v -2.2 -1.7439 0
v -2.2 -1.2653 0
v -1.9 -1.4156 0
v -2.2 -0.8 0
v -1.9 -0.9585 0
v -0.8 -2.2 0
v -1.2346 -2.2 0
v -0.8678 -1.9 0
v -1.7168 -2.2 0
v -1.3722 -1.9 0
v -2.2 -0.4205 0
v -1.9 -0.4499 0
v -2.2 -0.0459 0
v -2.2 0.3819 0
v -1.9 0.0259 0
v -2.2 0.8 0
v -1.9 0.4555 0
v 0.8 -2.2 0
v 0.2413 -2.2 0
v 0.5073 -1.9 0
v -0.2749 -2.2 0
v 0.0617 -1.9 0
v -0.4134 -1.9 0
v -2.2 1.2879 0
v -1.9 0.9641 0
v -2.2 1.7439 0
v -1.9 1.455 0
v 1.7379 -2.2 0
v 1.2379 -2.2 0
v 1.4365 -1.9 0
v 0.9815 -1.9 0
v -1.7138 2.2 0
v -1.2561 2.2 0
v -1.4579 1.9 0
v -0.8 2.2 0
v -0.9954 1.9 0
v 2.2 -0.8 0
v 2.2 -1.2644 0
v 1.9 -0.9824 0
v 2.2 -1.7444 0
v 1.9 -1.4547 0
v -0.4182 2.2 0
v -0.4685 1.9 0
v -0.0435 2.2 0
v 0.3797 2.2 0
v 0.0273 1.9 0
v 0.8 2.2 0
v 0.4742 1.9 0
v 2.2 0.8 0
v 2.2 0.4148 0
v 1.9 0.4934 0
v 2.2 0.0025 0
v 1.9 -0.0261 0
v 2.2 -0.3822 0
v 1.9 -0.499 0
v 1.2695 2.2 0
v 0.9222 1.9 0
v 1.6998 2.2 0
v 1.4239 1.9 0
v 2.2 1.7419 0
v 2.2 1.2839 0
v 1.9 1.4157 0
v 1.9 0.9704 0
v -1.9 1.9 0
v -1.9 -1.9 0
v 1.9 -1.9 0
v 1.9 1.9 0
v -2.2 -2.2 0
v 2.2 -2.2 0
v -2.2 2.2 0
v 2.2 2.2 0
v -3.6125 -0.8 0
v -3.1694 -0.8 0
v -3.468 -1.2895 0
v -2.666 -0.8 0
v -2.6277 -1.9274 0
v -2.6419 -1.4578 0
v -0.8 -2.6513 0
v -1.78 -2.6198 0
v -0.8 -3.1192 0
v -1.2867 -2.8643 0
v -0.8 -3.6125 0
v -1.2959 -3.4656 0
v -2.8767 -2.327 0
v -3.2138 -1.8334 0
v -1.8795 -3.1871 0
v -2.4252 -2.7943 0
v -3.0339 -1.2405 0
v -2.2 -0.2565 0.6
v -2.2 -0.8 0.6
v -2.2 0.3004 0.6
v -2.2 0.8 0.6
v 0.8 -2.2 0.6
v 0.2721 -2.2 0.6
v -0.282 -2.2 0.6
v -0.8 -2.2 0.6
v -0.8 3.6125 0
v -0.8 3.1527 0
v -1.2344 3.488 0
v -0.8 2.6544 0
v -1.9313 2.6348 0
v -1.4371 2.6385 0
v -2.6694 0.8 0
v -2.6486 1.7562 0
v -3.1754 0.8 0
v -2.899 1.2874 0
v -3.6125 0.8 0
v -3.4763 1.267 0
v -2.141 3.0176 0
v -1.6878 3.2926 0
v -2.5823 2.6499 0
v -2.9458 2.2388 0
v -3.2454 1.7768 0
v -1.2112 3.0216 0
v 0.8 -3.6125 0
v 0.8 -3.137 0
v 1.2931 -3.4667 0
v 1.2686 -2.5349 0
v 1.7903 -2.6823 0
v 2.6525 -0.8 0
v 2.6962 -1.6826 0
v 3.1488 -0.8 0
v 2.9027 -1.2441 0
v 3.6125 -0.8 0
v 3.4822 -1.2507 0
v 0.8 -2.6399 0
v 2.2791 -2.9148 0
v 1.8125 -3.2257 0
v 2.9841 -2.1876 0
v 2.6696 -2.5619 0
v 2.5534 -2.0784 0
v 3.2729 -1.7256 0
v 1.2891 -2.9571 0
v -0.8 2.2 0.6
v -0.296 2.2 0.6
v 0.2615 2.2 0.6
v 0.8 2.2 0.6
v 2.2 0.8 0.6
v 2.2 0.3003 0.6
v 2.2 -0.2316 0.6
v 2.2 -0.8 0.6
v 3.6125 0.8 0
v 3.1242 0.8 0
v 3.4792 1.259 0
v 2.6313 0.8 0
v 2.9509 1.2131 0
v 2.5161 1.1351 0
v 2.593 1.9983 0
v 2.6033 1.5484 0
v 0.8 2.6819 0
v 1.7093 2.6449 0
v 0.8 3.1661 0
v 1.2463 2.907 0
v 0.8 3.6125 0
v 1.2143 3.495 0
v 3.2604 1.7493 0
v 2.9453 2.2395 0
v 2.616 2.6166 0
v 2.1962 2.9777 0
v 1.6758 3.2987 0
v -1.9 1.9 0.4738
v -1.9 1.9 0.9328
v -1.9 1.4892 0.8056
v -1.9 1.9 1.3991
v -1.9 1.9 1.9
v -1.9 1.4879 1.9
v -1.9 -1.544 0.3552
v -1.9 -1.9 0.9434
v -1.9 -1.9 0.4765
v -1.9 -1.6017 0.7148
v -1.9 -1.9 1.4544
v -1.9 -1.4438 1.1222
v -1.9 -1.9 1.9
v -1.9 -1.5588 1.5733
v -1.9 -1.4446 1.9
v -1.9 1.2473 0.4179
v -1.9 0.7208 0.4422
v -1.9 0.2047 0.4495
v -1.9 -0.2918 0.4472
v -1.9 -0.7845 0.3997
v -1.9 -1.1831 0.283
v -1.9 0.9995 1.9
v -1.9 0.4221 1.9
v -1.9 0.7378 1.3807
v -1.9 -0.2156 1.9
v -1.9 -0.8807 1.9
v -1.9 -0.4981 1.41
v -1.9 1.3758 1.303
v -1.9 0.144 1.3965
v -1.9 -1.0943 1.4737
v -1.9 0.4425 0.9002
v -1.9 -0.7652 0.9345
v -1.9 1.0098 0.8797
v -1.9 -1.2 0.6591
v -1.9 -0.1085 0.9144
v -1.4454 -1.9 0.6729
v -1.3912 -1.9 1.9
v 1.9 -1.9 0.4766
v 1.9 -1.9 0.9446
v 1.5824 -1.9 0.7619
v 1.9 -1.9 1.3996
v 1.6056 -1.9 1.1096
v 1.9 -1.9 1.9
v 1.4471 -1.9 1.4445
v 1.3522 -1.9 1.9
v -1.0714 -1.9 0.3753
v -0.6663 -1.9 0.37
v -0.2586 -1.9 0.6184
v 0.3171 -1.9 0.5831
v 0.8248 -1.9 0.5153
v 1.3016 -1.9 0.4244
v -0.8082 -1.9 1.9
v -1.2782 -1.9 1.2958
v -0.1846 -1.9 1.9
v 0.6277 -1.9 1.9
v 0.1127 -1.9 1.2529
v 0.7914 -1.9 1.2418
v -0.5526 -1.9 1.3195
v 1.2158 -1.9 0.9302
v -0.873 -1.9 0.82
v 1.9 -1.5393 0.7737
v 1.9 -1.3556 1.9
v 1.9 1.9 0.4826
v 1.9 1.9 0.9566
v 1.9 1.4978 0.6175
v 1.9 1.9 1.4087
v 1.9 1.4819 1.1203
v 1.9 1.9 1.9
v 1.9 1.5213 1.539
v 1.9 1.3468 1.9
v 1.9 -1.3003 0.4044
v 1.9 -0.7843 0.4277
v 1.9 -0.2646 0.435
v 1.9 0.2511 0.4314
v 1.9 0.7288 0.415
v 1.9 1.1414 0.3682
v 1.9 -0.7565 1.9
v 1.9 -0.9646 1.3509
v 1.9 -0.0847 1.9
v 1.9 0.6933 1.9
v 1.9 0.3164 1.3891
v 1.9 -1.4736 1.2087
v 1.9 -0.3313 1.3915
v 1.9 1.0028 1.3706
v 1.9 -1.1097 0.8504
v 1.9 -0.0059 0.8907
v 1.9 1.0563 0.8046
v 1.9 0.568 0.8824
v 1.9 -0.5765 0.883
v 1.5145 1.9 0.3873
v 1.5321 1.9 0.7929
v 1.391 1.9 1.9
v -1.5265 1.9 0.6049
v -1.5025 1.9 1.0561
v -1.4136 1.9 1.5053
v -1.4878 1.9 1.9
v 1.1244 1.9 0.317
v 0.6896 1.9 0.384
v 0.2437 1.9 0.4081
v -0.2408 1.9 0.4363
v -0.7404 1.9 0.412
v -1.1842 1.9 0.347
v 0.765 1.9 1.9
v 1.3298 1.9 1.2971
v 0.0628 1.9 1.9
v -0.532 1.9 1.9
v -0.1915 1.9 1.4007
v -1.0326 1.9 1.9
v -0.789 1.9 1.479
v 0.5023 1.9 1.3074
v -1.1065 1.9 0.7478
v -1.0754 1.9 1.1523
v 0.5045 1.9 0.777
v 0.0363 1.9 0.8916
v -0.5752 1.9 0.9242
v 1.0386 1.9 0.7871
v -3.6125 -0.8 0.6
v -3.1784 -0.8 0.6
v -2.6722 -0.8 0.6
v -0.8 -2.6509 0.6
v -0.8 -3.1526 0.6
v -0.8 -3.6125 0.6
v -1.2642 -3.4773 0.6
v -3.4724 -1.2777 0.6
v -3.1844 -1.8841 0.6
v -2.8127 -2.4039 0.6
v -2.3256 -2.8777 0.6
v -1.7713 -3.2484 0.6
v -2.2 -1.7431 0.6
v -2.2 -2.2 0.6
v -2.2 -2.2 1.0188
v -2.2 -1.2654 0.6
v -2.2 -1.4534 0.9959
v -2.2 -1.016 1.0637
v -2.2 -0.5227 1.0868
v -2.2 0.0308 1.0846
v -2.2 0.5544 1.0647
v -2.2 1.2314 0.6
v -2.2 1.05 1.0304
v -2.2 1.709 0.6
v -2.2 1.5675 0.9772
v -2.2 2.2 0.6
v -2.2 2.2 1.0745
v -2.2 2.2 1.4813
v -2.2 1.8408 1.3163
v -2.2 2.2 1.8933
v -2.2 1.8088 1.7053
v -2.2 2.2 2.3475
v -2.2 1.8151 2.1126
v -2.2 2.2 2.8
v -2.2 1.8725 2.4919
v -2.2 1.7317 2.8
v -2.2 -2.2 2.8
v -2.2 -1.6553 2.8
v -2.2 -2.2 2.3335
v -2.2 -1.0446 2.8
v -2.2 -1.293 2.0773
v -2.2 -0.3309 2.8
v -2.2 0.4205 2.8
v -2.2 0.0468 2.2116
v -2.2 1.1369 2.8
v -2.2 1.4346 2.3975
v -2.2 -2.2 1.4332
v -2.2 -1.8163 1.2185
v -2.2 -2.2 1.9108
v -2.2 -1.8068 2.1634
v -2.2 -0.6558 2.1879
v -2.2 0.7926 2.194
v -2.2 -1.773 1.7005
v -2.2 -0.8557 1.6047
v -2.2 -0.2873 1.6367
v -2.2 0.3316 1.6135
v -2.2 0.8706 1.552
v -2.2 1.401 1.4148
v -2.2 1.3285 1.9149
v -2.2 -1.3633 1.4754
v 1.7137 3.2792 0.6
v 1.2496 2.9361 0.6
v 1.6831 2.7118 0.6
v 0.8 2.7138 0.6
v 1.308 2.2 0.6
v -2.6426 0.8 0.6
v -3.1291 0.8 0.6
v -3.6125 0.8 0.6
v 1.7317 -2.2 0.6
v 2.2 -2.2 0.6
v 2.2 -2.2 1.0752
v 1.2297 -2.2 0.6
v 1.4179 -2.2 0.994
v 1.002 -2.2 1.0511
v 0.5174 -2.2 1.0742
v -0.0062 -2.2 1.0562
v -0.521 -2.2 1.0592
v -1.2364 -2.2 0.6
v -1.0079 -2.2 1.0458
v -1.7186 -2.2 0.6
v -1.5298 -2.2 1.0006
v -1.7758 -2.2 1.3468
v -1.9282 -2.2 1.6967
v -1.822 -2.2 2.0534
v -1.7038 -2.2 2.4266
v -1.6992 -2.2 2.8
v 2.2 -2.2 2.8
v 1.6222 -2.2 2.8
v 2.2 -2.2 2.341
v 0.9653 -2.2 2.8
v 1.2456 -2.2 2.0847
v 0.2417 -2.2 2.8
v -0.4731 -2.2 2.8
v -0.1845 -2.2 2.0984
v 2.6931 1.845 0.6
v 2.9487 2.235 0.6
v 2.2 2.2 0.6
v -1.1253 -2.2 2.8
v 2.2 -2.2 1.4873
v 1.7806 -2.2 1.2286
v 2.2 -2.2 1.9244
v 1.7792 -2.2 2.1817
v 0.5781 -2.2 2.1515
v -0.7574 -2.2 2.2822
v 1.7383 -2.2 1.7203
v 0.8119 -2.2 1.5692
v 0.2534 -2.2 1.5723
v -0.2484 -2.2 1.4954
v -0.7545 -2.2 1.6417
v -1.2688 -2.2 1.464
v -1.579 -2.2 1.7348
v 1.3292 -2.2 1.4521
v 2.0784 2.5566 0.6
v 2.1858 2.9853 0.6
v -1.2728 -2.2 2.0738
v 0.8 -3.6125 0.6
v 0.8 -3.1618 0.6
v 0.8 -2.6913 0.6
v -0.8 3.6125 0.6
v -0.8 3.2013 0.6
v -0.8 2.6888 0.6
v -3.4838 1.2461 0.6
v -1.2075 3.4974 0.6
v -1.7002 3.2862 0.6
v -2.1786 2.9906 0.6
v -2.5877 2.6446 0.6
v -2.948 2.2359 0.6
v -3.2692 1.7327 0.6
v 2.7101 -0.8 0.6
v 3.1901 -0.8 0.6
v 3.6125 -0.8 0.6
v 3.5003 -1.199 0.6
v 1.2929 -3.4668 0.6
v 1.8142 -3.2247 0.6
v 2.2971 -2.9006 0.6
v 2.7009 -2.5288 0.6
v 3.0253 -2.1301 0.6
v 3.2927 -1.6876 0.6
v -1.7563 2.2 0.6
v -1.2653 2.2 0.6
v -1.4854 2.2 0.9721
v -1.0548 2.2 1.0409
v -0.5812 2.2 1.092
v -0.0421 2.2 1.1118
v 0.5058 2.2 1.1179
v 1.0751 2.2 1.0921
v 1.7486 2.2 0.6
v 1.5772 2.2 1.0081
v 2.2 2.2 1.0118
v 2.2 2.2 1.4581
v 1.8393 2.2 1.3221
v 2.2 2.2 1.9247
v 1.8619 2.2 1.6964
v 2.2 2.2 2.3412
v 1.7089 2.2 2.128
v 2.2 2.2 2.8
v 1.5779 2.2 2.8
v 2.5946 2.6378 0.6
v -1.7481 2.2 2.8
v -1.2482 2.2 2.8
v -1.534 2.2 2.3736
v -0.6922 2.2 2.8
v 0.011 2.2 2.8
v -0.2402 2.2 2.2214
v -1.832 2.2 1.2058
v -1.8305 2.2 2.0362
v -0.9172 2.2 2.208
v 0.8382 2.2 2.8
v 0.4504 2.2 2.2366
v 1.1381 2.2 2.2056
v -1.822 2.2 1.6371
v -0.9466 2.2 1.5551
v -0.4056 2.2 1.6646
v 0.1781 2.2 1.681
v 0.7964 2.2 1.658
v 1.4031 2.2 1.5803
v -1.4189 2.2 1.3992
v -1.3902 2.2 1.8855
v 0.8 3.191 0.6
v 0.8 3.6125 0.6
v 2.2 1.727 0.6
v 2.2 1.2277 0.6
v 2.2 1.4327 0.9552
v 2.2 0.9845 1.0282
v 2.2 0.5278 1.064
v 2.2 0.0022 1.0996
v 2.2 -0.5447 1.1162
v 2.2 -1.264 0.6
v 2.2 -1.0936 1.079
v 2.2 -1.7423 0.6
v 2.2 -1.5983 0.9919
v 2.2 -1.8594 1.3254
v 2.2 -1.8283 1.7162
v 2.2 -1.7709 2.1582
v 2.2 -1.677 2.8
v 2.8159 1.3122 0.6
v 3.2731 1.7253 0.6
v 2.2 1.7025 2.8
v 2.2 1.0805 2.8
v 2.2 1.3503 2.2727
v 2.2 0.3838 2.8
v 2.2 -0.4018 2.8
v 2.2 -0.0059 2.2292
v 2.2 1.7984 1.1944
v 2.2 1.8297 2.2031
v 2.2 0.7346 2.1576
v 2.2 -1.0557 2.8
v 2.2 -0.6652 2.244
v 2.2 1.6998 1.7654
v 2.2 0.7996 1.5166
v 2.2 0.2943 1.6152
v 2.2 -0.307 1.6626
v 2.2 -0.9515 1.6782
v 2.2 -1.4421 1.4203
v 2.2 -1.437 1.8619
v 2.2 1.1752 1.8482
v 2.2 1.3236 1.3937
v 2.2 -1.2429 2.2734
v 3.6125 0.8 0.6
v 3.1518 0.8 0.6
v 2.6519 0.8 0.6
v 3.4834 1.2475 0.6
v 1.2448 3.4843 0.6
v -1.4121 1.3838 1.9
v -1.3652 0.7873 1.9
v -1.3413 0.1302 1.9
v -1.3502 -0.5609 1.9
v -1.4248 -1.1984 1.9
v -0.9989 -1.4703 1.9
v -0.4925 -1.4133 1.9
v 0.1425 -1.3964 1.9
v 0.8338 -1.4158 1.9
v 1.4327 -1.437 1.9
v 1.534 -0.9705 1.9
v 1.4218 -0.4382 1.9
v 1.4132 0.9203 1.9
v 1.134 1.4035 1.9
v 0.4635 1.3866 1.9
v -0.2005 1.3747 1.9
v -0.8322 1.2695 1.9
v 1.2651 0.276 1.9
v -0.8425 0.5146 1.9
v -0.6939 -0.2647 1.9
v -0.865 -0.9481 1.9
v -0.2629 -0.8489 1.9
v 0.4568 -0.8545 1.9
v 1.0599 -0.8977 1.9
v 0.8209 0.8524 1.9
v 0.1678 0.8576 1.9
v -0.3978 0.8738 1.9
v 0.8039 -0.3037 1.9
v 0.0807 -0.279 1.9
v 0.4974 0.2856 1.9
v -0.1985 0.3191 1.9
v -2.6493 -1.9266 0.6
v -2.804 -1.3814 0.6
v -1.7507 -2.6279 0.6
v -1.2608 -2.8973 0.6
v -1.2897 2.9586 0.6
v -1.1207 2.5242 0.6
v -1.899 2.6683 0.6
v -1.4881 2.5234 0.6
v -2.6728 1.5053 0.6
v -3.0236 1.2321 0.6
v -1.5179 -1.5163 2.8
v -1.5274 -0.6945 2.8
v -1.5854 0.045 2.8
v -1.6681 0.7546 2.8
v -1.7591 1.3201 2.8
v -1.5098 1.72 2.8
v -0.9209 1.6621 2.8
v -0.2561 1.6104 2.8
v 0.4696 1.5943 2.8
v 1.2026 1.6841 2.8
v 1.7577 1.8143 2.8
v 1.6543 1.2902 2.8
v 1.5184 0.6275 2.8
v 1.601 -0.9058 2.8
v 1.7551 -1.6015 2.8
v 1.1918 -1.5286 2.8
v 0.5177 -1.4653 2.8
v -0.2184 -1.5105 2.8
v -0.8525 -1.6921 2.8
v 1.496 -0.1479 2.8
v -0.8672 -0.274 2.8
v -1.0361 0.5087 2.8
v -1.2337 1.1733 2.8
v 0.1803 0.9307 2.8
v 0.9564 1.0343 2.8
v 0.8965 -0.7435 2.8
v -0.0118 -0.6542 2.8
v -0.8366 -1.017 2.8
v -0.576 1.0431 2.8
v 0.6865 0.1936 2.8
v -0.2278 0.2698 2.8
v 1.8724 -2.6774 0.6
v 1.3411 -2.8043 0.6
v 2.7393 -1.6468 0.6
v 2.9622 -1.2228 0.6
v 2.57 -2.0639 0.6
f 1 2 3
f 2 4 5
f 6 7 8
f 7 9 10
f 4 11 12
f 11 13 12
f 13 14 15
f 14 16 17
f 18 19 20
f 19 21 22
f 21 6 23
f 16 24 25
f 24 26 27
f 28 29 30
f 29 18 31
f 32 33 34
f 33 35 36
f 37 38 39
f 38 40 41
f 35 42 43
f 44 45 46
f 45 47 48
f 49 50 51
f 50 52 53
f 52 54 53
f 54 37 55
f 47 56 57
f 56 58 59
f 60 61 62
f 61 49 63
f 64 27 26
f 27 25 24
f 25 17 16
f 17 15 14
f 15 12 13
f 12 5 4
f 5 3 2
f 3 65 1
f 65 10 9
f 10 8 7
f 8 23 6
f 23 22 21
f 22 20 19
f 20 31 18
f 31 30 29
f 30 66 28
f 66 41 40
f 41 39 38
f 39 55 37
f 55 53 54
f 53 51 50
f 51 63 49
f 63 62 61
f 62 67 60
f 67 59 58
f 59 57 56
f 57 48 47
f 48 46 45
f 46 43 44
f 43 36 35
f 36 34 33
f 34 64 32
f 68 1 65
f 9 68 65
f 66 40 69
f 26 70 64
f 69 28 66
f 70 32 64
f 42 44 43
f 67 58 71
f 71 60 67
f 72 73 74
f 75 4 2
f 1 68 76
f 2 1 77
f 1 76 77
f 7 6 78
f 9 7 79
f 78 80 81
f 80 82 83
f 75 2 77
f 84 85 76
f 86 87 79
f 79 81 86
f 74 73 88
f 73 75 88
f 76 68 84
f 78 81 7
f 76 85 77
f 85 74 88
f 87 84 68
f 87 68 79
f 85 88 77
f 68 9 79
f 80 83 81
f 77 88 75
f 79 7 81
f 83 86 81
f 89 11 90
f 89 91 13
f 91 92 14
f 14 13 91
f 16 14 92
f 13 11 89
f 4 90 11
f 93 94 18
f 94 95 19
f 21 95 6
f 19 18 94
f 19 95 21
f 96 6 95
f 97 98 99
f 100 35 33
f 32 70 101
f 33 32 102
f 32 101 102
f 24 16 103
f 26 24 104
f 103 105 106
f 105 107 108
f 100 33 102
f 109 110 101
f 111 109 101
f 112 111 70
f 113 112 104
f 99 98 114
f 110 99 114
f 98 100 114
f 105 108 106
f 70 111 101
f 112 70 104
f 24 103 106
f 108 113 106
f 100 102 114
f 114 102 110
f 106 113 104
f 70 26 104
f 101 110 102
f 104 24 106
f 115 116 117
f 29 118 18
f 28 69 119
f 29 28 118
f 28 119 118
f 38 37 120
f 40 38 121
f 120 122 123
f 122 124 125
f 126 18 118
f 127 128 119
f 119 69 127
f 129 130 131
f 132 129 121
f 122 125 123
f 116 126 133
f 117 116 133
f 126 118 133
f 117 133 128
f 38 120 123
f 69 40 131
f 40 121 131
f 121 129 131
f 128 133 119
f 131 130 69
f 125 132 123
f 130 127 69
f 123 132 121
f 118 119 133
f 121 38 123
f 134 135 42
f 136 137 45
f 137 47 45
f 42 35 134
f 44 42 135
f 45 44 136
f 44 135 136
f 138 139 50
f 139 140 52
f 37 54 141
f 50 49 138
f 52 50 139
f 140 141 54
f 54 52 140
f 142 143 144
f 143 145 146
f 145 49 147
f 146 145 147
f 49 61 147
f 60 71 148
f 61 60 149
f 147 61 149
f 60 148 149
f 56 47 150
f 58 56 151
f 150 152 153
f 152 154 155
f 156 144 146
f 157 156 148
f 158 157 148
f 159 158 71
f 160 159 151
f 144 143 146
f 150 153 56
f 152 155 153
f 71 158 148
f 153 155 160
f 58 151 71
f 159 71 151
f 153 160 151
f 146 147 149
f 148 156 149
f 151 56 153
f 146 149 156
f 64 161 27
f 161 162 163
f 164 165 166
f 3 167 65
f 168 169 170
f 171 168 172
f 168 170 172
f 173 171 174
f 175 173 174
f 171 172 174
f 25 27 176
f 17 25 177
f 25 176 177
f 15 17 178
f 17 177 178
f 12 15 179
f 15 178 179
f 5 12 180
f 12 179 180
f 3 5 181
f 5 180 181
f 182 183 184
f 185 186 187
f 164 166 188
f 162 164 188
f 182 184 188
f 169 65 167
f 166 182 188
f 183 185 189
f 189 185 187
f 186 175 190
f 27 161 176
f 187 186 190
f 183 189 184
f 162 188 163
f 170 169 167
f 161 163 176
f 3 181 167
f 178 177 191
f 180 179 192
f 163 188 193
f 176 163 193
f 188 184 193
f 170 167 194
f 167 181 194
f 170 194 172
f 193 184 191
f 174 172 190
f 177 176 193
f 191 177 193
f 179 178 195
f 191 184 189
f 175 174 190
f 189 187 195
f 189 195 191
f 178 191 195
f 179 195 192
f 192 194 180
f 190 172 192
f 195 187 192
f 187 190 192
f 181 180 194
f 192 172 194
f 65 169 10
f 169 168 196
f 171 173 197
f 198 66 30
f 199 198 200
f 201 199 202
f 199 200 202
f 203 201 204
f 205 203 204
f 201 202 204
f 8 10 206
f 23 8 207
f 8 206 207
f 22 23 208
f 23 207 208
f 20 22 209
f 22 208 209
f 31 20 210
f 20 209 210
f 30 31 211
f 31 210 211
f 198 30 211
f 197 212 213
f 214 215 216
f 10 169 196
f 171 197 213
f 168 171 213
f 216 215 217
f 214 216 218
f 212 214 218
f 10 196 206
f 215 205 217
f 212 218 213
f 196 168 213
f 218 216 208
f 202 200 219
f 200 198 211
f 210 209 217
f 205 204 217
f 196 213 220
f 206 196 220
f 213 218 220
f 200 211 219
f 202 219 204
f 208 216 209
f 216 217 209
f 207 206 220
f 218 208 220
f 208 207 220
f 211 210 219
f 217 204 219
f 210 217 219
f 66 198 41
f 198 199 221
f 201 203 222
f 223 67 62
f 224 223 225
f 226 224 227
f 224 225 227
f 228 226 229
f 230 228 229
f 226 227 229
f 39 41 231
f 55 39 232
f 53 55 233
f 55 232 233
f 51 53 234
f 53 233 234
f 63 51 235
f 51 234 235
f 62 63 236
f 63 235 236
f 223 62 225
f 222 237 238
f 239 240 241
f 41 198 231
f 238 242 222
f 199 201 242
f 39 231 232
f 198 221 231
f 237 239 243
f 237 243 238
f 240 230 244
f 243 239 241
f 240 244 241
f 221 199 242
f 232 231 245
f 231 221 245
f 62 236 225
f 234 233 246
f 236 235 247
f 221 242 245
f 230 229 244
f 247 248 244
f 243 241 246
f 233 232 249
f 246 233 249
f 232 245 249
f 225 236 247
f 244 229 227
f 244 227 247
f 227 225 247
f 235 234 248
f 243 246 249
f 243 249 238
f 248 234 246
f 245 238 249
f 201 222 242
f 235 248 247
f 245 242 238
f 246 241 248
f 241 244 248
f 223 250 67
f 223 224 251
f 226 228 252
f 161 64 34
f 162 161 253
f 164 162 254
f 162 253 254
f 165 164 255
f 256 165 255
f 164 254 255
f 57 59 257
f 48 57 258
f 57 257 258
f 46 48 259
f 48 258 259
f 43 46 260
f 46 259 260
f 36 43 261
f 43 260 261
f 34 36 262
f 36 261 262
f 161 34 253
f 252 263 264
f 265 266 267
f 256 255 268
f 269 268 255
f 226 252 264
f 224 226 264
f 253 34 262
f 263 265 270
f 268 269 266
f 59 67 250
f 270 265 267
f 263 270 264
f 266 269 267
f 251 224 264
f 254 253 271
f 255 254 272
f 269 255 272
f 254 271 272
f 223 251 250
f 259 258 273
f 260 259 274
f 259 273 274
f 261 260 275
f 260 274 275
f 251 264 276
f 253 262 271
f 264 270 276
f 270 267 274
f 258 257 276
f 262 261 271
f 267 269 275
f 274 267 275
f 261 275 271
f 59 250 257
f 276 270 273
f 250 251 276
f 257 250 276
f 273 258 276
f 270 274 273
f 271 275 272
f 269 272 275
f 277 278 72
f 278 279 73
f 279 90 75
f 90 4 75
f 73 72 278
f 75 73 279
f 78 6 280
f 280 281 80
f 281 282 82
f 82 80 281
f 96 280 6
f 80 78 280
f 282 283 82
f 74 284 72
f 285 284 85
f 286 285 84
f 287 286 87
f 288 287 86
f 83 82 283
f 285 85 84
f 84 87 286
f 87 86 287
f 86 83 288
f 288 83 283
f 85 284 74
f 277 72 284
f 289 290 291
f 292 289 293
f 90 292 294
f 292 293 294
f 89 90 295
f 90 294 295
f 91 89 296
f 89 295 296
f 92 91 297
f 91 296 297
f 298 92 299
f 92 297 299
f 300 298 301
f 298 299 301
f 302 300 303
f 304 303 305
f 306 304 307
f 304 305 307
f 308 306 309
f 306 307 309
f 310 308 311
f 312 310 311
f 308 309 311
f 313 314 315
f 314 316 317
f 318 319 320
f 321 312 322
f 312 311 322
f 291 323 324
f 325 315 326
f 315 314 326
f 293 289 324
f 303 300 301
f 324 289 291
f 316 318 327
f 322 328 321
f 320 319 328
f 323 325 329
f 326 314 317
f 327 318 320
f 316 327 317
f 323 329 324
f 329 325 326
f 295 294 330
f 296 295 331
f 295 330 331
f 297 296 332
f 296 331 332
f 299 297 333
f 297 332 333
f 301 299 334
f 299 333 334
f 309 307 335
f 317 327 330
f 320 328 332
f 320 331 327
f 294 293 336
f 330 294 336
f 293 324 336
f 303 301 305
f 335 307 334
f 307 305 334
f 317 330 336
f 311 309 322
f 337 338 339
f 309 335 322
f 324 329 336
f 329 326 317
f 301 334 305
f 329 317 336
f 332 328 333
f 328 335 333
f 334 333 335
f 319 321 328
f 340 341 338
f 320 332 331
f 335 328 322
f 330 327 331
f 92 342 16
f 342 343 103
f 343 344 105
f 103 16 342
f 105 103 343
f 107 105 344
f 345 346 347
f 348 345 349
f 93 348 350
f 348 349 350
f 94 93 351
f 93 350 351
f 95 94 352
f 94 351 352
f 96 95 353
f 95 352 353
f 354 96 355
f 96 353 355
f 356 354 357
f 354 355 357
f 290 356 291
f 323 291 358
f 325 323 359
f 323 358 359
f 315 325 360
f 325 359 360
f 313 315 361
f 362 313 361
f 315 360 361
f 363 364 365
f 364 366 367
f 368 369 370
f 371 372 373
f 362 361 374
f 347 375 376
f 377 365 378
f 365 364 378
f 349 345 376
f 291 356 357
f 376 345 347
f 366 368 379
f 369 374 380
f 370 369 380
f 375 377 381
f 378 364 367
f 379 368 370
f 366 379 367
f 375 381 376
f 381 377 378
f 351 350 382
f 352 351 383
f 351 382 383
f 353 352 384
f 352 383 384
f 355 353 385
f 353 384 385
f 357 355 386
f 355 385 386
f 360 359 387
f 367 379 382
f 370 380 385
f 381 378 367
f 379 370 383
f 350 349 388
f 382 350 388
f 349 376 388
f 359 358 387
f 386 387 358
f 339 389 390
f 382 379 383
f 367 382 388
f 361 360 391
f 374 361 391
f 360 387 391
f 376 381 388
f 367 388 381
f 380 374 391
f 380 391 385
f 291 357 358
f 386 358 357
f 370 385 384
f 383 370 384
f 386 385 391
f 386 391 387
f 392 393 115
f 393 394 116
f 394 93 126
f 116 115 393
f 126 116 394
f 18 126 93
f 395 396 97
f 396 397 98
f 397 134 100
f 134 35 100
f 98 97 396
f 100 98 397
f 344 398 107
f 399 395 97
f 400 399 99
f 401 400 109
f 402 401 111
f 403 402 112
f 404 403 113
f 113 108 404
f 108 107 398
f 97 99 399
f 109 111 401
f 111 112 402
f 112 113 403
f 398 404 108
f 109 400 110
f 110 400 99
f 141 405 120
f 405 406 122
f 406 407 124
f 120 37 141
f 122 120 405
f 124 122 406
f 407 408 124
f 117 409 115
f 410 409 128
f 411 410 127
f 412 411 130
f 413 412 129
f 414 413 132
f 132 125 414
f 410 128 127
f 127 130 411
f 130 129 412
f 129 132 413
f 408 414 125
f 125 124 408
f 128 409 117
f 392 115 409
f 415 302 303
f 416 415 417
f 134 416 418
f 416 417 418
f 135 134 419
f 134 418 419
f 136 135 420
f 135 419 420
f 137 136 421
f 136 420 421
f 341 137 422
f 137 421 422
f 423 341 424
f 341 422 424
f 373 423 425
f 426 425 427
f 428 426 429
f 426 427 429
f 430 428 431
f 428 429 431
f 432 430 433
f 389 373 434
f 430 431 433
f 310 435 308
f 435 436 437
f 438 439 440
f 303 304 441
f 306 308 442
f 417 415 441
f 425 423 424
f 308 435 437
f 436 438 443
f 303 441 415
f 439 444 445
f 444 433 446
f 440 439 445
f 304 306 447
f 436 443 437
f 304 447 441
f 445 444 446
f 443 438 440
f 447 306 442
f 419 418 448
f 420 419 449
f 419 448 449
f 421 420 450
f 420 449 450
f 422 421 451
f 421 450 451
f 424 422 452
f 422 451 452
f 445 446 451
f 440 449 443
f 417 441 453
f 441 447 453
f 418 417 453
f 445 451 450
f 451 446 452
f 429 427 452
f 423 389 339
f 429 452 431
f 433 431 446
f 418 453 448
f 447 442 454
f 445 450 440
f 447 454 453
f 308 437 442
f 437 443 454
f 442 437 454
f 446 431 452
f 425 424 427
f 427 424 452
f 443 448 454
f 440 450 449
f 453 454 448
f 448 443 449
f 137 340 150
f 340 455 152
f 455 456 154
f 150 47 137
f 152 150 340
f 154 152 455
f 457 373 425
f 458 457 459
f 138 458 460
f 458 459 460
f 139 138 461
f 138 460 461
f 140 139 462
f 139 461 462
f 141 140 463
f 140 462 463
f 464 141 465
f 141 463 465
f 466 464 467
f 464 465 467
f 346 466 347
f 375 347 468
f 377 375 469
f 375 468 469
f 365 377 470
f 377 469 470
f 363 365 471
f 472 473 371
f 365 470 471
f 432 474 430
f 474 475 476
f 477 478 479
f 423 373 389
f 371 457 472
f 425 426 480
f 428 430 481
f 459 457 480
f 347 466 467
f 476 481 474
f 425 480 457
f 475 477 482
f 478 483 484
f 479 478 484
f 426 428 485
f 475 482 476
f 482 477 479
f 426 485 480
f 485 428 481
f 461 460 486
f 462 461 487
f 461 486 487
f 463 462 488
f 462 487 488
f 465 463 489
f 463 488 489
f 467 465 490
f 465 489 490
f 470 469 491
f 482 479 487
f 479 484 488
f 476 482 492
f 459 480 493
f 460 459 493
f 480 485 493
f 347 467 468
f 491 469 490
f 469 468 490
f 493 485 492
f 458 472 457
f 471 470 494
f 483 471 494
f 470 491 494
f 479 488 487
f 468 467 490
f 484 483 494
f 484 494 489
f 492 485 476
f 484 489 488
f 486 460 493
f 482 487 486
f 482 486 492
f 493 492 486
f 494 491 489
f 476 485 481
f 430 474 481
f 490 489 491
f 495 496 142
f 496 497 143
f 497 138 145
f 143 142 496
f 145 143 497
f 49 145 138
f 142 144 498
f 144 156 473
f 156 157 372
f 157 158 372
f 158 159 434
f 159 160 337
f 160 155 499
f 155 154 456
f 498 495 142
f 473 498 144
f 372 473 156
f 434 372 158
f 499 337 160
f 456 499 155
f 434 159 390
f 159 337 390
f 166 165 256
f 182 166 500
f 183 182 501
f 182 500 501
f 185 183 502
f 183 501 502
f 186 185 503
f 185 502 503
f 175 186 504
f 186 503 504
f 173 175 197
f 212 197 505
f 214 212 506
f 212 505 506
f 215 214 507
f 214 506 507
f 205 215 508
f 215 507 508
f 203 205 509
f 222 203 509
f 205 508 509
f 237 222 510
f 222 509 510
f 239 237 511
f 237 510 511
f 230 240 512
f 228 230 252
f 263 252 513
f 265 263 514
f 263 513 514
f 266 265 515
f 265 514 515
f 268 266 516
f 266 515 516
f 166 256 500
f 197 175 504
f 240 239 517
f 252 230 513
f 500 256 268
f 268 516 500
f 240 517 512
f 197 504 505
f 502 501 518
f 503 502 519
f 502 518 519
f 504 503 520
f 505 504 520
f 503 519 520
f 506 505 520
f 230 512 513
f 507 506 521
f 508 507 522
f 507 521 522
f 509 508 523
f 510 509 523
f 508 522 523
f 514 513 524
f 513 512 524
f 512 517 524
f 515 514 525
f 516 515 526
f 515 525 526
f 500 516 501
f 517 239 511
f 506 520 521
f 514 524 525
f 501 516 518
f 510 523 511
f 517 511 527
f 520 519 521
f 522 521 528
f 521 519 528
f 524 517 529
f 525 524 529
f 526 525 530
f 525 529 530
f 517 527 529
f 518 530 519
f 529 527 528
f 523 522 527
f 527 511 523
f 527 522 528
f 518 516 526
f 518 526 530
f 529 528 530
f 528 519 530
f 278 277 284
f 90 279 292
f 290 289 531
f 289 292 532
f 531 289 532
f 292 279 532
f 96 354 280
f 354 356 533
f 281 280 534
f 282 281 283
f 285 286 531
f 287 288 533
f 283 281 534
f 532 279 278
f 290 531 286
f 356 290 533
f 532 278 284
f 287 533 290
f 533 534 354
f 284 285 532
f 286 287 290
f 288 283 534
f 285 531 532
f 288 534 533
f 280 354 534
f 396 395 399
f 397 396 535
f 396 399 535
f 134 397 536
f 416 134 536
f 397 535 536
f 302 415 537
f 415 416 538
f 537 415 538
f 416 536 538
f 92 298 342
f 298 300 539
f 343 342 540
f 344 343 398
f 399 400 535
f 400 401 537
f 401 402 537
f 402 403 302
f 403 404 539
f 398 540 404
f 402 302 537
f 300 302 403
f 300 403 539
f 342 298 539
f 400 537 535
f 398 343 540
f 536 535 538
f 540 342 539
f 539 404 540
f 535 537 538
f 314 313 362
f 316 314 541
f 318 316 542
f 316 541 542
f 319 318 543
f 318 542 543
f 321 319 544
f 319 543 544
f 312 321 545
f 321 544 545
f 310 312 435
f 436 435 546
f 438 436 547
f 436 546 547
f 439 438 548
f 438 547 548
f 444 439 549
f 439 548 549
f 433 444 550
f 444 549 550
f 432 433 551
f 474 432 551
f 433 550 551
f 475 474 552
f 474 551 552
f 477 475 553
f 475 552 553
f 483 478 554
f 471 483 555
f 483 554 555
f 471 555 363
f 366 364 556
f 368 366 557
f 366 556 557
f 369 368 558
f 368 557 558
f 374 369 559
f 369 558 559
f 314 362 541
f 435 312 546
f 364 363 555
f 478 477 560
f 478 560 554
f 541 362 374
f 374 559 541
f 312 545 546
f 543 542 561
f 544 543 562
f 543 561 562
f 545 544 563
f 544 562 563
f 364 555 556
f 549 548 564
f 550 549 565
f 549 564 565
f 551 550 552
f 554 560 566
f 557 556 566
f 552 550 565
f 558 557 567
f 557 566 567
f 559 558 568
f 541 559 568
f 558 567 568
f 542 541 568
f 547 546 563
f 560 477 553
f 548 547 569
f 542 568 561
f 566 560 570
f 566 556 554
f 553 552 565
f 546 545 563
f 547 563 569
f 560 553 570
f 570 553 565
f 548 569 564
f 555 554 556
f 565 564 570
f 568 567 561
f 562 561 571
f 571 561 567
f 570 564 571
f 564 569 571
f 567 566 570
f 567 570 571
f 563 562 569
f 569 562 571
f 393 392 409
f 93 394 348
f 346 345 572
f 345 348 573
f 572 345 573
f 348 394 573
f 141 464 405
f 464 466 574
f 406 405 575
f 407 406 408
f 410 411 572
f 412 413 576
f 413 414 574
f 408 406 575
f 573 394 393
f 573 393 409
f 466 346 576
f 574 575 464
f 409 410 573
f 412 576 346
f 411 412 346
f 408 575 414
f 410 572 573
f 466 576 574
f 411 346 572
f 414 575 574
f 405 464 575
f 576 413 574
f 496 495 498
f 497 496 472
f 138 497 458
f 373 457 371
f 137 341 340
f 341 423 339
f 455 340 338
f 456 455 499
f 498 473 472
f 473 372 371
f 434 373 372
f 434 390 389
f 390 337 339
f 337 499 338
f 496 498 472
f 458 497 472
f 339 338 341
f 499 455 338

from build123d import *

# Parameters (mm, degrees)
SKETCH_W           = 4.4
SKETCH_H           = 4.4
PAD_DEPTH          = 2.8
SKETCH001_R        = 3.7
PAD001_DEPTH       = 0.6
SKETCH002_W        = 1.6
SKETCH002_H        = 3
POCKET_DEPTH       = 22.267564
POLARPATTERN_COUNT = 4
SKETCH003_W        = 3.8
SKETCH003_H        = 3.8
POCKET001_DEPTH    = 1.9


with BuildPart() as part:
    # Sketch → Pad (new body)
    with BuildSketch(Plane.XY):
        Rectangle(SKETCH_W, SKETCH_H)
    extrude(amount=PAD_DEPTH)

    # Sketch001 → Pad001 (join)
    with BuildSketch(Plane.XY):
        Circle(SKETCH001_R)
    extrude(amount=PAD001_DEPTH)

    # Sketch002 (on DatumPlane) → Pocket (cut, through all)
    with BuildSketch(Plane.XY.offset(0.6)):
        with Locations((0, 3.7)):
            Rectangle(SKETCH002_W, SKETCH002_H)
    pocket = extrude(amount=-POCKET_DEPTH, mode=Mode.SUBTRACT)

    # PolarPattern: Pocket ×4 about axis
    polarpattern_axis = Axis((0, 0, 0.6), (0, 0, 1))
    for i in range(1, POLARPATTERN_COUNT):
        add(pocket.rotate(polarpattern_axis, i * 360 / POLARPATTERN_COUNT), mode=Mode.SUBTRACT)

    # Sketch003 (on DatumPlane) → Pocket001 (cut)
    with BuildSketch(Plane(origin=(0, 0, 0), x_dir=(1, 0, 0), z_dir=(0, 0, -1))):
        Rectangle(SKETCH003_W, SKETCH003_H)
    extrude(amount=-POCKET001_DEPTH, mode=Mode.SUBTRACT)


solid = part.part
